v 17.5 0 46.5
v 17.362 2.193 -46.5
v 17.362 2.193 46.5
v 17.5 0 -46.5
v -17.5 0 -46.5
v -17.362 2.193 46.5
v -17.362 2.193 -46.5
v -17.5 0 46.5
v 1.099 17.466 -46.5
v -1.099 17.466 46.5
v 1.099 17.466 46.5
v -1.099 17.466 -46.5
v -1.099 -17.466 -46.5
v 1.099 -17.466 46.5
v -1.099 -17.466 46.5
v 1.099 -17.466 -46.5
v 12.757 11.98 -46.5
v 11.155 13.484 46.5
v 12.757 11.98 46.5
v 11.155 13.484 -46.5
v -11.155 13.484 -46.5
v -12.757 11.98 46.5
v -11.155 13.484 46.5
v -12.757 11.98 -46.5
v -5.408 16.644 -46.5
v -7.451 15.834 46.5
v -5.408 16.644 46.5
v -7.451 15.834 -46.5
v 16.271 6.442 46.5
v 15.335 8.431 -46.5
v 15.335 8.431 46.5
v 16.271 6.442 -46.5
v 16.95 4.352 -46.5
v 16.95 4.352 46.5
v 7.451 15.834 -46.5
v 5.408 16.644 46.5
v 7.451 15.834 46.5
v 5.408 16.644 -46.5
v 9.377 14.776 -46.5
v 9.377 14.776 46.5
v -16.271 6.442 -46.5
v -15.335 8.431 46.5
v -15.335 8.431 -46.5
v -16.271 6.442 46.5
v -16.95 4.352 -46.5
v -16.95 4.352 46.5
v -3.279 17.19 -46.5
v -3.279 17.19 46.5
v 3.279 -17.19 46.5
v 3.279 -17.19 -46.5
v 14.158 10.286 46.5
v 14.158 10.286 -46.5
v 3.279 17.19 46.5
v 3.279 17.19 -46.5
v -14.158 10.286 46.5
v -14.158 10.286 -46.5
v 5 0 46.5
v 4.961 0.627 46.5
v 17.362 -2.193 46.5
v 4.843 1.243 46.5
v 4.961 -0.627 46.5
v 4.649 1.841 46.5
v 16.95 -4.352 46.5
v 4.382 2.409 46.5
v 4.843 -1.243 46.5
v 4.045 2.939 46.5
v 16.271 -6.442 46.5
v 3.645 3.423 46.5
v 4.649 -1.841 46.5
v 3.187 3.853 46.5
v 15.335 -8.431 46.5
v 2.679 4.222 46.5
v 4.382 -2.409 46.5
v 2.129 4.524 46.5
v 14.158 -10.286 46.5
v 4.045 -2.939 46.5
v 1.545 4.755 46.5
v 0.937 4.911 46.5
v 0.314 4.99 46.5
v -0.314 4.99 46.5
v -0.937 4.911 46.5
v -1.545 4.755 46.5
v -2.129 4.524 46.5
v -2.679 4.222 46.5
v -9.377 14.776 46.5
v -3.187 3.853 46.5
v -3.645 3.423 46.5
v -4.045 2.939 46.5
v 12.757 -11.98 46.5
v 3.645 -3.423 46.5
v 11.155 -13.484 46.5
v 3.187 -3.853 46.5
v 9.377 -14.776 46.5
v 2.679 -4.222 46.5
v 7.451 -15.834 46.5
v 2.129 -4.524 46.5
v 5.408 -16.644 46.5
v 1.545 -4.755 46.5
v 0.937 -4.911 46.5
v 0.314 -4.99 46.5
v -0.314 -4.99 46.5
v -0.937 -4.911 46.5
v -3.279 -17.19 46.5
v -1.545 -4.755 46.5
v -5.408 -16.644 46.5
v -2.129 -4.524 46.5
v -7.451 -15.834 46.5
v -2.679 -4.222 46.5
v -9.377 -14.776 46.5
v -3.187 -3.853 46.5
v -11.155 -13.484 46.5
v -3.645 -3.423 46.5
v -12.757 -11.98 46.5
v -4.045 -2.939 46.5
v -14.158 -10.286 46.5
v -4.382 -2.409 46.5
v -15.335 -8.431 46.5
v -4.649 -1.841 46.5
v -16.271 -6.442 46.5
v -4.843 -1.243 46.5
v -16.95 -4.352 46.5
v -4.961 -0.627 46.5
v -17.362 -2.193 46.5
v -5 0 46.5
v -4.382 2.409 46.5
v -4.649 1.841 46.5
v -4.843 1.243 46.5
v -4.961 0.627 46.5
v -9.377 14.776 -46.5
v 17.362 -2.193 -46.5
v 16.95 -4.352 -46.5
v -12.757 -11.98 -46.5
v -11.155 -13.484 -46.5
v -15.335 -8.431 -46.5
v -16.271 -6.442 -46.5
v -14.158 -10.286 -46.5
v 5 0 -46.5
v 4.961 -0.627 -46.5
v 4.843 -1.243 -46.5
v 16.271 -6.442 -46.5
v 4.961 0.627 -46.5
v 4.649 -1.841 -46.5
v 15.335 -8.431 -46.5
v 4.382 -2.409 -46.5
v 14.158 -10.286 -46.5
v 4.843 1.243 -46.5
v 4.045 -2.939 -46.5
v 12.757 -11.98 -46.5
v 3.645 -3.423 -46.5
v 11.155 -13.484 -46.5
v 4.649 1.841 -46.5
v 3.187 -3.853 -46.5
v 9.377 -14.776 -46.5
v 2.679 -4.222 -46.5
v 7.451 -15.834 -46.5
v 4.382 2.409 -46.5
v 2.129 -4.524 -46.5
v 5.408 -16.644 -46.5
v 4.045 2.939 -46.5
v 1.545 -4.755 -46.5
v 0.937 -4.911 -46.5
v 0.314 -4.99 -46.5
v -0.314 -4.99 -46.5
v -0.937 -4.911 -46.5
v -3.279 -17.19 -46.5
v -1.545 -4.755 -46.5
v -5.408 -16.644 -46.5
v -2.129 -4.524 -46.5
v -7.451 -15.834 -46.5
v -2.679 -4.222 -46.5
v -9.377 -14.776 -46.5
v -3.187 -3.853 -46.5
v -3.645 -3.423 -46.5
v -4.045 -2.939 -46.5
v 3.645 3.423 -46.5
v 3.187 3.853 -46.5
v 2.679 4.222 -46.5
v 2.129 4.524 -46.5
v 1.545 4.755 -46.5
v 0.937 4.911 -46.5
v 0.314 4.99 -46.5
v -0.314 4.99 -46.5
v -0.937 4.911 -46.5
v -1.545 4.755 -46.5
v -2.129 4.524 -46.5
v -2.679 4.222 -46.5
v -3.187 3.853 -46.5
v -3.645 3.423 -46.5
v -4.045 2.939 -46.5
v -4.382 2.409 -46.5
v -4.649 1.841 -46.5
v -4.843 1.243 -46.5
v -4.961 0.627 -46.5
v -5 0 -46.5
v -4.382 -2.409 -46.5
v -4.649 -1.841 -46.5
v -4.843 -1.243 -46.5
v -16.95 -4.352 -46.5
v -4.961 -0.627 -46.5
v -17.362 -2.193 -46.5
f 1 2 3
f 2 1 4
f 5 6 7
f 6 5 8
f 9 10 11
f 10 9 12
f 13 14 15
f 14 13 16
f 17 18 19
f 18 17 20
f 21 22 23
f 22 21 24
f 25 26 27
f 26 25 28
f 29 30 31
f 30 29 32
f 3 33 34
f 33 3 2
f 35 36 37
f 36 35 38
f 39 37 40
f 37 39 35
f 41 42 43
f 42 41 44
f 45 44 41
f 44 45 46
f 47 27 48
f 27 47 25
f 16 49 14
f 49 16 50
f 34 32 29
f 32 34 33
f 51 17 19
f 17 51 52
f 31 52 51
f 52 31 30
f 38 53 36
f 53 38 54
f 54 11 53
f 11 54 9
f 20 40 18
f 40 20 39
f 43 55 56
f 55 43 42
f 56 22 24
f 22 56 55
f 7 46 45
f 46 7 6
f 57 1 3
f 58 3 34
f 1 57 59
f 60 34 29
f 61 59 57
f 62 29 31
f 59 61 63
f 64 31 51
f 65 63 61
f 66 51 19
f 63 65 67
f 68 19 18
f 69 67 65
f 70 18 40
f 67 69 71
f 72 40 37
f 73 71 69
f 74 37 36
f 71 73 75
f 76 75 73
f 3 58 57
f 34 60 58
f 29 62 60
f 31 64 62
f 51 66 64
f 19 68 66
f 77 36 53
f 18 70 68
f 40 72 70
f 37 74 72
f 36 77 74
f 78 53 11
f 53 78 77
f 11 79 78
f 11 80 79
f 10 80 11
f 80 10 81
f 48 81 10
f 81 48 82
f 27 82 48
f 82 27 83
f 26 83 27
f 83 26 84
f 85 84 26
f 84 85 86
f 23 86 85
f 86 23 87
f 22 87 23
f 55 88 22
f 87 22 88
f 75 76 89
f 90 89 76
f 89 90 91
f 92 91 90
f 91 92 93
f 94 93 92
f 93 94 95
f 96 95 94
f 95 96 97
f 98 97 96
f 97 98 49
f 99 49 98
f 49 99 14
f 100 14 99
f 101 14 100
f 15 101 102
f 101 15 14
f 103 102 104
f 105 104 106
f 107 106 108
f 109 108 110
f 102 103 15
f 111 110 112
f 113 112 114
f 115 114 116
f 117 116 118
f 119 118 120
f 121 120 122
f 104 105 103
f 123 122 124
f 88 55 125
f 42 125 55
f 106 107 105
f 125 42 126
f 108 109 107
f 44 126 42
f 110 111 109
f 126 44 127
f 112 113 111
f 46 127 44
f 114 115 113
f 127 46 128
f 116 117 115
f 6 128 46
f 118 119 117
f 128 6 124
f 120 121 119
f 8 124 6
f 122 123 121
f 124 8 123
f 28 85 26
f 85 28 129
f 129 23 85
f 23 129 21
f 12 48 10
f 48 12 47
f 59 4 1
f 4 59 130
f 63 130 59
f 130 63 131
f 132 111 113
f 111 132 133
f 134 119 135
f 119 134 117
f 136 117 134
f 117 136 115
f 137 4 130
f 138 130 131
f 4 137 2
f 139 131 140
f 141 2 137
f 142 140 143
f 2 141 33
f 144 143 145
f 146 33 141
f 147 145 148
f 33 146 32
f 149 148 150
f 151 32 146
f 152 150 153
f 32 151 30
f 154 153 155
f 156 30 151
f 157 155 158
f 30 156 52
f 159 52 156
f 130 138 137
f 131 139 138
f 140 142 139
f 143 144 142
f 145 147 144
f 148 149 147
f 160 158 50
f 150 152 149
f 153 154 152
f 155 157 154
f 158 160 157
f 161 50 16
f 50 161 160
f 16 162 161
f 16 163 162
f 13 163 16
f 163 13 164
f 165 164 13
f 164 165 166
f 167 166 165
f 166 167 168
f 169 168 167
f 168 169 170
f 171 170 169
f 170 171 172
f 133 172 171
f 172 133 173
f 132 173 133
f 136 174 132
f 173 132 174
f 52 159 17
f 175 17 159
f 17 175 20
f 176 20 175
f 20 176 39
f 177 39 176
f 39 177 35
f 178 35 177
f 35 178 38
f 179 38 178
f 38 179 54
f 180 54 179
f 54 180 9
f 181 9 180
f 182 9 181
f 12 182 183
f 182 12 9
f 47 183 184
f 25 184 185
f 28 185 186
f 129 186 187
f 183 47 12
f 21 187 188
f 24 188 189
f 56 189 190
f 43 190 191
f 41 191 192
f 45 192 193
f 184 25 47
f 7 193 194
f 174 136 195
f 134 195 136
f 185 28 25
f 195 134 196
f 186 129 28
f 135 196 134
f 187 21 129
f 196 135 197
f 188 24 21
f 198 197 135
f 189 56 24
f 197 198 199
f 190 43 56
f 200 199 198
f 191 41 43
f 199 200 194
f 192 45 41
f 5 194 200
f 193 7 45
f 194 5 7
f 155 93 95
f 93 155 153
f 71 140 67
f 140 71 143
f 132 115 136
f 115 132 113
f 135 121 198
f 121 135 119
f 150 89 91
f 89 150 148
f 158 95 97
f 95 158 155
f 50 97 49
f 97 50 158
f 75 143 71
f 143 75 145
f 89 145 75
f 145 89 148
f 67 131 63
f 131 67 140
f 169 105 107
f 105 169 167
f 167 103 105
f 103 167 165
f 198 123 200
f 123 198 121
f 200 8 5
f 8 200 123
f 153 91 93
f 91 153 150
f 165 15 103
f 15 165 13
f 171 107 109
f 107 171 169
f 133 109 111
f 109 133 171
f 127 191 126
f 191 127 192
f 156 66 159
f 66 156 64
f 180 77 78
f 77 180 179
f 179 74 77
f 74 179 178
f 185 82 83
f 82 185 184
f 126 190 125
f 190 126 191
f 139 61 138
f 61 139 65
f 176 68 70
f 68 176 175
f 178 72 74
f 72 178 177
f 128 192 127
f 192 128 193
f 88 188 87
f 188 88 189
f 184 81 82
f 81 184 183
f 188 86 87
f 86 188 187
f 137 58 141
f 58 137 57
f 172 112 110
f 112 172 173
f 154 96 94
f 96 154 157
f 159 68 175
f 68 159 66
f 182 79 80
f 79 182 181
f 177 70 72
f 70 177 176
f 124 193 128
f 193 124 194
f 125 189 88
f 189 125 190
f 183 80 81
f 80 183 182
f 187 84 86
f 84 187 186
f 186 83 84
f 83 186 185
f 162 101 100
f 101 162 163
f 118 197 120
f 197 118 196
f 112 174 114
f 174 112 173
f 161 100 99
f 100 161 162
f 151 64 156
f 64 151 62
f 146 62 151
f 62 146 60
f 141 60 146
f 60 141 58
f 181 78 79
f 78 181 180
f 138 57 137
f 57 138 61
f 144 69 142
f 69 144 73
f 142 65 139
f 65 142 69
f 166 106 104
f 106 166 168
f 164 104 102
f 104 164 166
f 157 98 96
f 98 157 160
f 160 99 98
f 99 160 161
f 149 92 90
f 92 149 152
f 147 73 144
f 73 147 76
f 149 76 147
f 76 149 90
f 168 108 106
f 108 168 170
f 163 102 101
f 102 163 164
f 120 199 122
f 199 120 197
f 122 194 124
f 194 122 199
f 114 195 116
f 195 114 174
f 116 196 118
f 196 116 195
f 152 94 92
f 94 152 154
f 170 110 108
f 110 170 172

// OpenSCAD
$fn = 50;


difference() {
	union() {
		translate(v = [0, 0, -46.5000000000]) {
			cylinder(h = 93, r = 17.5000000000);
		}
	}
	union() {
		translate(v = [0, 0, -100.0000000000]) {
			cylinder(h = 200, r = 5);
		}
	}
}
